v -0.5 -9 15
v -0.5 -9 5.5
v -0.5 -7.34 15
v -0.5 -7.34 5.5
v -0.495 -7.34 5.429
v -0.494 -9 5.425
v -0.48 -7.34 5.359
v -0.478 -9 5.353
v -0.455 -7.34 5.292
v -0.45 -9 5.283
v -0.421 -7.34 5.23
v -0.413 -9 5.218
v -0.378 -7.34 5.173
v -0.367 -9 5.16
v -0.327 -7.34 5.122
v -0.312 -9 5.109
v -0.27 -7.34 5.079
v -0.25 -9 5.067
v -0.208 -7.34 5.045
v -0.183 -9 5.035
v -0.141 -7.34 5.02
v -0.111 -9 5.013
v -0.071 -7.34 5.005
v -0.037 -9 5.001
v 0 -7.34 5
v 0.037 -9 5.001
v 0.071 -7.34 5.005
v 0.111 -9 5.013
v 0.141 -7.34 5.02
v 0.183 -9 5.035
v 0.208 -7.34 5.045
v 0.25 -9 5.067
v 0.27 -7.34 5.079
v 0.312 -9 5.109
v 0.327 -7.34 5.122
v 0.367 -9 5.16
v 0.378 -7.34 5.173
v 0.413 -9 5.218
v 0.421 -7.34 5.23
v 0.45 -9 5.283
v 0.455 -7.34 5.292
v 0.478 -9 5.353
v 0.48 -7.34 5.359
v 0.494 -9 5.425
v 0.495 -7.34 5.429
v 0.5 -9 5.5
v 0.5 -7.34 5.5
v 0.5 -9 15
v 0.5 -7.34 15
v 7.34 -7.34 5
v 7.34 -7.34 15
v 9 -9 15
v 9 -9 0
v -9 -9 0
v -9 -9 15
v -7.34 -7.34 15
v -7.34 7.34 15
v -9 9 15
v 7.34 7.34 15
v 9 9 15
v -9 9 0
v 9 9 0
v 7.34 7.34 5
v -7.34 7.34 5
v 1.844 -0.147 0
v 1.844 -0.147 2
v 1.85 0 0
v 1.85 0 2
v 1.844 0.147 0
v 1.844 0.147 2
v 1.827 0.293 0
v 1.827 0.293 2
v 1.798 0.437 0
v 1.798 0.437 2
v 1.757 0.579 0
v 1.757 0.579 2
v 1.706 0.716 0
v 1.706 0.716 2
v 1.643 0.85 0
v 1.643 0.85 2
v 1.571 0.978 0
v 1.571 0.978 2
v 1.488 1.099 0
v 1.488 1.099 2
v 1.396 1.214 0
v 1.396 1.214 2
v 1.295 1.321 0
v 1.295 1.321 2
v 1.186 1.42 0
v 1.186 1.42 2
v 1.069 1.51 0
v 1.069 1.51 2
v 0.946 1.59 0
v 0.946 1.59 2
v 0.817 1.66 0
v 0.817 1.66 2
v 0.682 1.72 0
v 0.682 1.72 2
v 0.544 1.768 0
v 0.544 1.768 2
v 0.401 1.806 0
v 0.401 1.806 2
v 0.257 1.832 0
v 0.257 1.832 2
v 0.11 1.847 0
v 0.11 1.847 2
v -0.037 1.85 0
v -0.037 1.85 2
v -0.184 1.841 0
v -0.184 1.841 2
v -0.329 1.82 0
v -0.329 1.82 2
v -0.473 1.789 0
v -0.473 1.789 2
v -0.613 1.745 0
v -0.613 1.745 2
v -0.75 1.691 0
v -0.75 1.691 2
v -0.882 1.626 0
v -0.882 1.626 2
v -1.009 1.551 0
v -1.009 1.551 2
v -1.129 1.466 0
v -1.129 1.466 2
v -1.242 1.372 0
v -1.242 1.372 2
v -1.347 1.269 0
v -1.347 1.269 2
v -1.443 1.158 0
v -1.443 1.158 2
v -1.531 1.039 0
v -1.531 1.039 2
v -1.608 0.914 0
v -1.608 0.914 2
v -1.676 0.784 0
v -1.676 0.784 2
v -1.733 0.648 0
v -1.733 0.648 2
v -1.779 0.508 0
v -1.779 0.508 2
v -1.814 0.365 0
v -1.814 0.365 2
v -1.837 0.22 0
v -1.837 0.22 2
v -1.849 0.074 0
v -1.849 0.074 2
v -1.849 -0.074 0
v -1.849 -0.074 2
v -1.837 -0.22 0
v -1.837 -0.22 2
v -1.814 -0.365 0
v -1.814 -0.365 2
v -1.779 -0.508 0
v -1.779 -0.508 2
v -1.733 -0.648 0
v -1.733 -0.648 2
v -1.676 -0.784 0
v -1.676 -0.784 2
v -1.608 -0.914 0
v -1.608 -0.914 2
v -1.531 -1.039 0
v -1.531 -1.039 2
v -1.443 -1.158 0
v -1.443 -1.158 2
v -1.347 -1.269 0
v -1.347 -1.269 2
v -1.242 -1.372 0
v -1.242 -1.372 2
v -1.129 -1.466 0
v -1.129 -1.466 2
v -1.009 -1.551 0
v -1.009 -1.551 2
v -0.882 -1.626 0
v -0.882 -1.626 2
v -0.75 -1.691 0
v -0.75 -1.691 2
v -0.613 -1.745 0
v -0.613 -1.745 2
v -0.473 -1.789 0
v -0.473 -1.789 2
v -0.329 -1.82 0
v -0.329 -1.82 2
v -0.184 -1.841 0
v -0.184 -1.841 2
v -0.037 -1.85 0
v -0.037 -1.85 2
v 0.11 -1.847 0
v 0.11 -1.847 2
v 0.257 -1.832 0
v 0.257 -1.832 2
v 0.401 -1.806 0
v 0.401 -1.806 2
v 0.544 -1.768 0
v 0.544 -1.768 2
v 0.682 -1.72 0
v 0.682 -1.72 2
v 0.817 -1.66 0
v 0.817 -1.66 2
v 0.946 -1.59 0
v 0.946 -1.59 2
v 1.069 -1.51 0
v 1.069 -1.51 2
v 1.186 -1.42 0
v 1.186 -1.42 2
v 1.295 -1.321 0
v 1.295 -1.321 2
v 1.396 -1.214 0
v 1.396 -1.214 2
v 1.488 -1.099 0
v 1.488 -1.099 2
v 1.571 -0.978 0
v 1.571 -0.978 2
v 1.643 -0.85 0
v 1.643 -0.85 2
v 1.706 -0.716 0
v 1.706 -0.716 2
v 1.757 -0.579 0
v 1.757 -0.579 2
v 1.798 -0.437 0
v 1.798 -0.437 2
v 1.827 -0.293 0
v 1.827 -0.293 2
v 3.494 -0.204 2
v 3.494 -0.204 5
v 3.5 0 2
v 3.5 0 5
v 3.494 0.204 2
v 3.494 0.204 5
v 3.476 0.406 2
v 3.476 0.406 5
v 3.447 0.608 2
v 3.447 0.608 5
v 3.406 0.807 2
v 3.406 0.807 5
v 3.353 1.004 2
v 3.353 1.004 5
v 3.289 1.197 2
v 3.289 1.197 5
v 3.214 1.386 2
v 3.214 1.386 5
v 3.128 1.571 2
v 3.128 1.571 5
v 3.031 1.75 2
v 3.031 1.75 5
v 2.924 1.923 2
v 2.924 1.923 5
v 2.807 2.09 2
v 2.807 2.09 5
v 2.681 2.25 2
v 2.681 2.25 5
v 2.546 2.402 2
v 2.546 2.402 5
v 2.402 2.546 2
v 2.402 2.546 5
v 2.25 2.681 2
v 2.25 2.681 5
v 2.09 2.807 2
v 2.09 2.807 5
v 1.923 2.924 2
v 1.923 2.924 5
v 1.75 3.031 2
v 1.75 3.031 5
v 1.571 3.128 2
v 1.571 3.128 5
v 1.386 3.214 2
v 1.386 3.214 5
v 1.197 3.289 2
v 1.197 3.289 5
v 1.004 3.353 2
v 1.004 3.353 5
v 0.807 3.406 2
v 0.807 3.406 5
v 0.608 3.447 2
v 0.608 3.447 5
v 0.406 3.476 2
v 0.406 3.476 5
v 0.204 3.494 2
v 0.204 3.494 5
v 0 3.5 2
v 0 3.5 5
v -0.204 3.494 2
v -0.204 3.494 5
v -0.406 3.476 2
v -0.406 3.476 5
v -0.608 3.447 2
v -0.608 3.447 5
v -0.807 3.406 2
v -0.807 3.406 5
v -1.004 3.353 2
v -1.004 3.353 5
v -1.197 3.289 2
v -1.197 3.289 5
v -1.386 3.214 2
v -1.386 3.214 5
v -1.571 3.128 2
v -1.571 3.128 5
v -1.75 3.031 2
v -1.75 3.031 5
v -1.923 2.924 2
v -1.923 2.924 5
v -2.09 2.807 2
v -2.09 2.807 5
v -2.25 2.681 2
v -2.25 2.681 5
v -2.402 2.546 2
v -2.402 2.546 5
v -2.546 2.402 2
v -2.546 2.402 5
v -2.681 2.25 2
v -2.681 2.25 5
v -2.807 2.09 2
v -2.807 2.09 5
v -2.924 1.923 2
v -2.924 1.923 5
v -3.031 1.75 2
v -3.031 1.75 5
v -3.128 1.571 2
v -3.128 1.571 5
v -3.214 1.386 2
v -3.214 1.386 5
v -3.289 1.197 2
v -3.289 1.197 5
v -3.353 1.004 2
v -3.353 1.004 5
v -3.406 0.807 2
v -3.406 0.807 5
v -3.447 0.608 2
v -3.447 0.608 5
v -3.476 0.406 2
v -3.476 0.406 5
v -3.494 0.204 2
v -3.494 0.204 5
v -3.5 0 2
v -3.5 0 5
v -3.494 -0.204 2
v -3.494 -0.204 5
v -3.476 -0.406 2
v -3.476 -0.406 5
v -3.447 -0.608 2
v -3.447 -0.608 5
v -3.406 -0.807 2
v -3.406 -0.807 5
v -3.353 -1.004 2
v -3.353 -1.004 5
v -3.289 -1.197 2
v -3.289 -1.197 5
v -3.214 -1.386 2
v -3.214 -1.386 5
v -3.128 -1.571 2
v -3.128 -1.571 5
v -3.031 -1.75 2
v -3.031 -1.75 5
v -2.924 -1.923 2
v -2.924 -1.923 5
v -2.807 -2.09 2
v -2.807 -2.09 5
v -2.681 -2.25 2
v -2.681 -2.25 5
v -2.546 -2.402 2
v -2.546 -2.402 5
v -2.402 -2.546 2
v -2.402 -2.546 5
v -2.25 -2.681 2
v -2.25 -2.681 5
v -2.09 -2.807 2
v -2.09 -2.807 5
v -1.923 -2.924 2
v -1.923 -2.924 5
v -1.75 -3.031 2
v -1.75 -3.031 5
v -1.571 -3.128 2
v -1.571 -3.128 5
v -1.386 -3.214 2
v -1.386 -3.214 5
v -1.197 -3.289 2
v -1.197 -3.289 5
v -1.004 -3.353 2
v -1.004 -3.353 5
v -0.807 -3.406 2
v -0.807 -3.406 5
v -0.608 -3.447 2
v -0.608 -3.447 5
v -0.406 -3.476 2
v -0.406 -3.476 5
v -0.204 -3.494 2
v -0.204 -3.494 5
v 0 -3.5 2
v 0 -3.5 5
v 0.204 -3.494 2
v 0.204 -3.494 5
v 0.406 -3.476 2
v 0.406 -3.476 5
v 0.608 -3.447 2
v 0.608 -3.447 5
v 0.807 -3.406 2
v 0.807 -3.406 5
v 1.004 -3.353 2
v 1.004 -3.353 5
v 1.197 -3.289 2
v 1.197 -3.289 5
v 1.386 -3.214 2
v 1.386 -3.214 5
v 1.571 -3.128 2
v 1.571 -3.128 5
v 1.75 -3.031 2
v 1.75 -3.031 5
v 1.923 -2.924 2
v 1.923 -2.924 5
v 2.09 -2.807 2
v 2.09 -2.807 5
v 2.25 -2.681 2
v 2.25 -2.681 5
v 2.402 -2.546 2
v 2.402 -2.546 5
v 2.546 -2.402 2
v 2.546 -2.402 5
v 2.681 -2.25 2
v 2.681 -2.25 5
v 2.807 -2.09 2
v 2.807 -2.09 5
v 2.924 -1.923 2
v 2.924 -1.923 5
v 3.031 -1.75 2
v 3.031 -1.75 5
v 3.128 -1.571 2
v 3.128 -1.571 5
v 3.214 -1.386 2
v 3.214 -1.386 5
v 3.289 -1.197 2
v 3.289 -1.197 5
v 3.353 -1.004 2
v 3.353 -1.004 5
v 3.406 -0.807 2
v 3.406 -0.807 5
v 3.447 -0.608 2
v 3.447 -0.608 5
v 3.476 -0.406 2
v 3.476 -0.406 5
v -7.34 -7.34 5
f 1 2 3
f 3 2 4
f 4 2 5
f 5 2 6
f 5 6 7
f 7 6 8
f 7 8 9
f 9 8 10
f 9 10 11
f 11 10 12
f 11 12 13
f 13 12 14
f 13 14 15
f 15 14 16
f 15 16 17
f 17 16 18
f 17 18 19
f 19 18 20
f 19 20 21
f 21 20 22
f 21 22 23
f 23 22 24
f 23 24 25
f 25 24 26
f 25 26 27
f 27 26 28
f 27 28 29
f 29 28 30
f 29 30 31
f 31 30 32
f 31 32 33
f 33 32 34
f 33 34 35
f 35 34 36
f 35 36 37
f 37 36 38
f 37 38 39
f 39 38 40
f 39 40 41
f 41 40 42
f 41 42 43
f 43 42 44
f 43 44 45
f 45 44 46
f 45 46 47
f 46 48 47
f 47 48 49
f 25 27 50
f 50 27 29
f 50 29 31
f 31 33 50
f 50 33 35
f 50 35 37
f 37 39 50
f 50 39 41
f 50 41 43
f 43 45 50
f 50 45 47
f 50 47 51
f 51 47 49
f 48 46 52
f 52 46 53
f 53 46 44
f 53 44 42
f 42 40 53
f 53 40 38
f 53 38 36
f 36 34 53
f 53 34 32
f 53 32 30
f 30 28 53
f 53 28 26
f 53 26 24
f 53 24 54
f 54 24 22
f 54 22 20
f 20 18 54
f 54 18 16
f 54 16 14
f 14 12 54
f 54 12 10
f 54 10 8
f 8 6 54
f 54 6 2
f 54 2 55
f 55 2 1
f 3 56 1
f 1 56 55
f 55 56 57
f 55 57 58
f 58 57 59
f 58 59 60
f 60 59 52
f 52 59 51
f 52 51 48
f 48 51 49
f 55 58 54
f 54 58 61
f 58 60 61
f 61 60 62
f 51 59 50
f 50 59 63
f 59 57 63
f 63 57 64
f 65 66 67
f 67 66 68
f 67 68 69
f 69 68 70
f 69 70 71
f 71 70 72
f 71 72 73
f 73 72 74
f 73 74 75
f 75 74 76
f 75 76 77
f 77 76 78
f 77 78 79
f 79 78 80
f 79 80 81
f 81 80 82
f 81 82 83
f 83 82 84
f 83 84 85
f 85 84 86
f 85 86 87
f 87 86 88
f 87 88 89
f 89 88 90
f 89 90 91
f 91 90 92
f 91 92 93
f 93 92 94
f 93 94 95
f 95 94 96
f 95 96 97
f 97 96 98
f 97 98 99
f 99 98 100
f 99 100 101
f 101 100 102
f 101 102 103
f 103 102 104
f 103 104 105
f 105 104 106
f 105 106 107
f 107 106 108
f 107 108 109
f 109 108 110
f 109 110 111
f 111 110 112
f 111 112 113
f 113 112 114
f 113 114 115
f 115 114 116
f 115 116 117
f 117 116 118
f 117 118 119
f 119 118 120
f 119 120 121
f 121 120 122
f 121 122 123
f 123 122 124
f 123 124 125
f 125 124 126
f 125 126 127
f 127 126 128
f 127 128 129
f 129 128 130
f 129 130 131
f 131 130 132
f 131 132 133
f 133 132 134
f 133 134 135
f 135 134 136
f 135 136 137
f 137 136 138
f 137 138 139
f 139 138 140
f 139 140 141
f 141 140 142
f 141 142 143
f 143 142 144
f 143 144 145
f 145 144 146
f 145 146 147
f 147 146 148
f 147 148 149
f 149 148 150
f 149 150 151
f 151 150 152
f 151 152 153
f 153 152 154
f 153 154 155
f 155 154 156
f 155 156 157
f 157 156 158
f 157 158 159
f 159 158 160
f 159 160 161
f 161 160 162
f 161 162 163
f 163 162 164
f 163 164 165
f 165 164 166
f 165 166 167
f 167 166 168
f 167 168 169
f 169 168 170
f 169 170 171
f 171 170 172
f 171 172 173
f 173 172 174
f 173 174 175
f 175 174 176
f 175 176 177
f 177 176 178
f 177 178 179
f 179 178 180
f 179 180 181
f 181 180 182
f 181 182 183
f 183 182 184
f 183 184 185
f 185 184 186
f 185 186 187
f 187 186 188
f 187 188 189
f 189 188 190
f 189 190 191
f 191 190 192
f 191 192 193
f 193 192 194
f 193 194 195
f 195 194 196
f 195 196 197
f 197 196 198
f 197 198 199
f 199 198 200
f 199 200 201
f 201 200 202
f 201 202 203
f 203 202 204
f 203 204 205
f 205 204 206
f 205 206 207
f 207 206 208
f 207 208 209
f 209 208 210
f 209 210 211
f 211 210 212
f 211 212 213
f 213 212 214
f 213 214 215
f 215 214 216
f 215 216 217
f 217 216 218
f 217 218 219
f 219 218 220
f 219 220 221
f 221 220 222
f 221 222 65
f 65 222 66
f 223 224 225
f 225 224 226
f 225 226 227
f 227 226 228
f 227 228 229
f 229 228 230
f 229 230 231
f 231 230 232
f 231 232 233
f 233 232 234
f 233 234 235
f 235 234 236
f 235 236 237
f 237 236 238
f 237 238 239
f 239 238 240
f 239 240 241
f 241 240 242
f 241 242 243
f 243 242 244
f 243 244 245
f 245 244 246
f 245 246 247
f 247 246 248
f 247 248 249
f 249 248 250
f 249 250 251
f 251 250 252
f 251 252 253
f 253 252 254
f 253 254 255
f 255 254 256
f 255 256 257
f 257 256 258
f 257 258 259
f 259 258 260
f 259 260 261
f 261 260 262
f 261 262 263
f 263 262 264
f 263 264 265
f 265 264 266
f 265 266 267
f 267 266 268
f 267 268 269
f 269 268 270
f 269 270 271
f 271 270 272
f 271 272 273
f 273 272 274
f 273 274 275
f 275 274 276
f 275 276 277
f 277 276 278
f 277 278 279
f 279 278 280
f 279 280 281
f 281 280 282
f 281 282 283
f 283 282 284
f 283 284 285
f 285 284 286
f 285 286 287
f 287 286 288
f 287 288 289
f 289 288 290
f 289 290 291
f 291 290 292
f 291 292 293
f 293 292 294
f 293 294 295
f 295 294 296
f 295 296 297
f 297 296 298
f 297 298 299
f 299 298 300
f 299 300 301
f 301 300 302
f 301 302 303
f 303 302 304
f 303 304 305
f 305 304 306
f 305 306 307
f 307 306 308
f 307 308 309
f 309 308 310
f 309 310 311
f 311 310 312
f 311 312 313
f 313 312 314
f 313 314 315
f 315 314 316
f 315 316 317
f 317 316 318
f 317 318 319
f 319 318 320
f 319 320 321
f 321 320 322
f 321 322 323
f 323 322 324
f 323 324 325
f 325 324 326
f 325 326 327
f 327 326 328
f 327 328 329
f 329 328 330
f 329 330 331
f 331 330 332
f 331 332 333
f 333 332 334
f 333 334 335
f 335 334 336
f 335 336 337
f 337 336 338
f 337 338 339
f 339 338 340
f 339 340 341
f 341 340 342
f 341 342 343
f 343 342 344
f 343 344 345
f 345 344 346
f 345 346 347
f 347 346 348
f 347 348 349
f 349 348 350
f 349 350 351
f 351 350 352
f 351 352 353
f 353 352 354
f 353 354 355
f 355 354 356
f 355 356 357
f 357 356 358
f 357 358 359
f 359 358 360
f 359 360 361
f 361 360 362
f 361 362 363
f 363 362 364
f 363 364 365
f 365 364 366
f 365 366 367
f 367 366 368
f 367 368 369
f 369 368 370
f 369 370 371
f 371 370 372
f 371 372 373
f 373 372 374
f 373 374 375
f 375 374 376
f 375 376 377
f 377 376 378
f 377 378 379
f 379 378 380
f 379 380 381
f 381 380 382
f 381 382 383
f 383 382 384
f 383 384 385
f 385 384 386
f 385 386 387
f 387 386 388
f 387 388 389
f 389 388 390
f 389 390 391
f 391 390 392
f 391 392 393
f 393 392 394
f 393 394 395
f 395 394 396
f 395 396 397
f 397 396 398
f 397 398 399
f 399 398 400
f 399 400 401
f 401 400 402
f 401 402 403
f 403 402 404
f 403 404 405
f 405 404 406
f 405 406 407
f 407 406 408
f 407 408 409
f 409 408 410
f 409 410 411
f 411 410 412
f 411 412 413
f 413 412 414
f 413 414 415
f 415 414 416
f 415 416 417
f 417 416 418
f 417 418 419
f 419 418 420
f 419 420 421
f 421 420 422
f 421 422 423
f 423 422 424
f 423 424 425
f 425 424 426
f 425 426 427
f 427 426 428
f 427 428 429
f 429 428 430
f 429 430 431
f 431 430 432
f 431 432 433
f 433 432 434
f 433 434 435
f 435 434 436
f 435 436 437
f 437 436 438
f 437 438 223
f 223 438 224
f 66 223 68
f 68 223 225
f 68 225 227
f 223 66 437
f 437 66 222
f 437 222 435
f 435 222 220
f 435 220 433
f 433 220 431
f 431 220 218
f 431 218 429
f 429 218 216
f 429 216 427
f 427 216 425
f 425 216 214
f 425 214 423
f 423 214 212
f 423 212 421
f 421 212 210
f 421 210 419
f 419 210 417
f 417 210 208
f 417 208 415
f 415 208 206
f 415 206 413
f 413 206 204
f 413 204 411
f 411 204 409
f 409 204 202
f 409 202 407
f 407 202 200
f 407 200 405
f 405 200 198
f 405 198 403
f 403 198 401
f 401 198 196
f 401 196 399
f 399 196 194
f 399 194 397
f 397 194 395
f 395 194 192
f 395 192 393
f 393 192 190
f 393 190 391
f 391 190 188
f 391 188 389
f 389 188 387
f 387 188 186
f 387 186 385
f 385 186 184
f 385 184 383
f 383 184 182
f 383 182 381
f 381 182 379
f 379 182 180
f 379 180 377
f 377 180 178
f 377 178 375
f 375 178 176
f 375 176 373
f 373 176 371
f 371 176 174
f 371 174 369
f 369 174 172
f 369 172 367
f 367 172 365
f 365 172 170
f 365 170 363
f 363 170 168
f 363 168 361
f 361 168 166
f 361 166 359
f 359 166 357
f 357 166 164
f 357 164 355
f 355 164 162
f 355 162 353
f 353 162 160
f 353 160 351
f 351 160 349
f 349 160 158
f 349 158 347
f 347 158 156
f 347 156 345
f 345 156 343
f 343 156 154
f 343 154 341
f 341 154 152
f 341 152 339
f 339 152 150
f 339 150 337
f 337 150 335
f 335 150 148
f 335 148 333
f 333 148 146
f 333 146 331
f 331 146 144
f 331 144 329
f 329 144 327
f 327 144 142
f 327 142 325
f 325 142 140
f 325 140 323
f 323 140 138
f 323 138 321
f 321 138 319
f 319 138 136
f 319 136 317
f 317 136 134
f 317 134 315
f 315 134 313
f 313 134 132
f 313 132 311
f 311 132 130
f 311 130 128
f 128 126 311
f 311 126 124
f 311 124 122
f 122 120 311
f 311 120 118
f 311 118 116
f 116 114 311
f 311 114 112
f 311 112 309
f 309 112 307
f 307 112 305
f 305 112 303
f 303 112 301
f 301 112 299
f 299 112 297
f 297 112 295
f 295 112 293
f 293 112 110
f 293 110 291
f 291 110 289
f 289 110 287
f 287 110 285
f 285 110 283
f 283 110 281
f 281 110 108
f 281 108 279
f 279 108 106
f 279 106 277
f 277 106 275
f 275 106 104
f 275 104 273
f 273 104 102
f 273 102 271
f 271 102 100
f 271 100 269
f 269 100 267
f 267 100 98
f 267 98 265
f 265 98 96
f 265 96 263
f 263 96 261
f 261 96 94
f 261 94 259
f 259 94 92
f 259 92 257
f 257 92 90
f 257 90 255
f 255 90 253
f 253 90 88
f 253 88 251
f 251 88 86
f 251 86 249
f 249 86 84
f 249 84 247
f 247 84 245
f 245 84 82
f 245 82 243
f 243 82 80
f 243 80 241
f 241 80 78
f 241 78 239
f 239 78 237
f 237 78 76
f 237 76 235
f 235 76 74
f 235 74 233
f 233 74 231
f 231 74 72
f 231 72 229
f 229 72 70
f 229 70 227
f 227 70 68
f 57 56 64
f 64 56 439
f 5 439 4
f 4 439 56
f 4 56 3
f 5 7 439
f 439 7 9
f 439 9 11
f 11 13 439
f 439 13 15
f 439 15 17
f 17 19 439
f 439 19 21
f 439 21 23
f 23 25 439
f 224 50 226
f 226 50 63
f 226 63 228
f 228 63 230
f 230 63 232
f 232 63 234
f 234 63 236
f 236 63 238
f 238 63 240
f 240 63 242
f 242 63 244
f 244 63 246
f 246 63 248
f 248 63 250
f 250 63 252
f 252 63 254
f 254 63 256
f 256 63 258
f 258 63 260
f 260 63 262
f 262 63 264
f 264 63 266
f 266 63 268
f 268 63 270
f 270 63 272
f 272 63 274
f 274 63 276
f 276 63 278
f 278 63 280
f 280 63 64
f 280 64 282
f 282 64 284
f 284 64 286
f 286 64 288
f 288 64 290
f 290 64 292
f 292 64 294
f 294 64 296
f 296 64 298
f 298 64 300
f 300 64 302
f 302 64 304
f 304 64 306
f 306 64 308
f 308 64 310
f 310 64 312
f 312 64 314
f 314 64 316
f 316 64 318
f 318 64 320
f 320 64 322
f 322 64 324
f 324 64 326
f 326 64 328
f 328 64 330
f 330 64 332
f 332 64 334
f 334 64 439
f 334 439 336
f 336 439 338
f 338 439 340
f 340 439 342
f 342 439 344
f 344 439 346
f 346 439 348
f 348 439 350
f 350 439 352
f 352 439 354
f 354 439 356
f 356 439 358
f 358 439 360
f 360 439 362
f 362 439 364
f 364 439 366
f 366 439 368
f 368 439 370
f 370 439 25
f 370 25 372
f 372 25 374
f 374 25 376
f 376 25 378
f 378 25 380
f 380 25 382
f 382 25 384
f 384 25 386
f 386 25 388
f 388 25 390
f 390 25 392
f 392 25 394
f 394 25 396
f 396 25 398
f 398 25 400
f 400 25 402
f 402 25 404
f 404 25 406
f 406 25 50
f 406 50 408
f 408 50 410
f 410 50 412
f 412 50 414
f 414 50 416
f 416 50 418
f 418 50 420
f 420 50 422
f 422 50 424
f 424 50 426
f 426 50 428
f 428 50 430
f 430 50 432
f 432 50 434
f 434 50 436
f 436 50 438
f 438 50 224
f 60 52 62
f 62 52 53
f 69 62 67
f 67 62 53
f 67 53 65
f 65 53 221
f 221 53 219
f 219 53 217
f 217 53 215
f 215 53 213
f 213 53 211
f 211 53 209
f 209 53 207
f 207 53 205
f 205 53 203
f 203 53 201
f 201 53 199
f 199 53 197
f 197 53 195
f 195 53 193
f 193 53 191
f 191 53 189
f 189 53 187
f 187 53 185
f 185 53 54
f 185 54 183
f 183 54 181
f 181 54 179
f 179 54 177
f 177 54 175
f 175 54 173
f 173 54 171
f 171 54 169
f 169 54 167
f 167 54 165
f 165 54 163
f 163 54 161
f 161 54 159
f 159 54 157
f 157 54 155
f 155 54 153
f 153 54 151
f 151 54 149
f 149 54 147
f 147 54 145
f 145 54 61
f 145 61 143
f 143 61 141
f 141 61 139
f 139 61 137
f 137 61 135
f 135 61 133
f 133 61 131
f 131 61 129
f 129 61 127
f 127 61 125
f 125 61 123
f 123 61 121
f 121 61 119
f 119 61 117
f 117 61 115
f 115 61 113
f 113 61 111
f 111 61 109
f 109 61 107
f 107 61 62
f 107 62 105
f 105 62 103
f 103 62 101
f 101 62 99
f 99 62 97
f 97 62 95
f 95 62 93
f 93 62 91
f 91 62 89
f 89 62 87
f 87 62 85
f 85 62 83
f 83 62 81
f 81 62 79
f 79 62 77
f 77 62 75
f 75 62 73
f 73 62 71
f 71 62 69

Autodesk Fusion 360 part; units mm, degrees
sketch "Sketch1" plane through (0, 0, 0) normal (0, 0, 1) x (1, 0, 0)
  line L0 (9, -9) -> (-9, -9)
  line L1 (-9, -9) -> (-9, 9)
  line L2 (-9, 9) -> (9, 9)
  line L3 (9, 9) -> (9, -9)
  line L4 (9, -9) -> (-9, 9) construction
  line L5 (-9, -9) -> (9, 9) construction
  dimension "d1" = 18
extrude "Extrude1" add sketch "Sketch1" along normal blind 17
sketch "Sketch2" plane through (0, 0, 17) normal (0, 0, 1) x (-1, 0, 0)
  line L0 (-9, -9) -> (9, -9)
  line L1 (9, -9) -> (9, 9)
  line L2 (9, 9) -> (-9, 9)
  line L3 (-9, 9) -> (-9, -9)
  line L4 (-7.34, 7.34) -> (7.34, 7.34)
  line L5 (7.34, 7.34) -> (7.34, -7.34)
  line L6 (7.34, -7.34) -> (-7.34, -7.34)
  line L7 (-7.34, -7.34) -> (-7.34, 7.34)
  line L8 (-7.34, 7.34) -> (7.34, -7.34) construction
  line L9 (7.34, 7.34) -> (-7.34, -7.34) construction
  dimension "d4" = 14.68
extrude "Extrude2" cut sketch "Sketch2" against normal blind 12 contours L4 L5 L6 L7
sketch "Sketch3" plane through (0, 0, 5) normal (0, 0, 1) x (-1, 0, 0)
  line L0 (-7.34, -7.34) -> (7.34, -7.34)
  line L1 (7.34, -7.34) -> (7.34, 7.34)
  line L2 (7.34, 7.34) -> (-7.34, 7.34)
  line L3 (-7.34, 7.34) -> (-7.34, -7.34)
  circle A0 centre (0, 0) radius 3.5
  dimension "d7" = 7
extrude "Extrude3" cut sketch "Sketch3" against normal blind 3 contours A0
sketch "Sketch4" plane through (0, 0, 2) normal (0, 0, 1) x (-1, 0, 0)
  circle A0 centre (0, 0) radius 3.5
  circle A1 centre (0, 0) radius 1.85
  dimension "d10" = 3.7
extrude "Extrude4" cut sketch "Sketch4" against normal blind 2 contours A1
sketch "Sketch5" plane through (0, -9, 0) normal (0, -1, 0) x (1, 0, 0)
  line L0 (-9, 0) -> (9, 0)
  line L1 (9, 0) -> (9, 17)
  line L2 (9, 17) -> (-9, 17)
  line L3 (-9, 17) -> (-9, 0)
  line L4 (-9, 17) -> (9, 17)
  line L5 (9, 17) -> (9, 15)
  line L6 (9, 15) -> (-9, 15)
  line L7 (-9, 15) -> (-9, 17)
  line L8 (-9, 5) -> (9, 5) construction
  dimension "d14" = 5
  dimension "d16" = 10
extrude "Extrude5" cut sketch "Sketch5" against normal blind 18 contours L1 L2 L3 L4 L5 L6 L7
sketch "Sketch6" plane through (0, -9, 0) normal (0, -1, 0) x (1, 0, 0)
  line L0 (9, 15) -> (-9, 15)
  line L1 (-9, 15) -> (-9, 0)
  line L2 (-9, 0) -> (9, 0)
  line L3 (9, 0) -> (9, 15)
  line L4 (-0.5, 15) -> (-0.5, 5.5)
  arc A0 (-0.5, 5.5) -> (0.5, 5.5) centre (0, 5.5) ccw
  line L5 (0.5, 5.5) -> (0.5, 15)
  line L6 (-9, 5) -> (9, 5) construction
  dimension "d19" = 5
  dimension "d20" = 1
extrude "Extrude6" cut sketch "Sketch6" against normal blind 1.66 contours L0 L4 A0 L5
